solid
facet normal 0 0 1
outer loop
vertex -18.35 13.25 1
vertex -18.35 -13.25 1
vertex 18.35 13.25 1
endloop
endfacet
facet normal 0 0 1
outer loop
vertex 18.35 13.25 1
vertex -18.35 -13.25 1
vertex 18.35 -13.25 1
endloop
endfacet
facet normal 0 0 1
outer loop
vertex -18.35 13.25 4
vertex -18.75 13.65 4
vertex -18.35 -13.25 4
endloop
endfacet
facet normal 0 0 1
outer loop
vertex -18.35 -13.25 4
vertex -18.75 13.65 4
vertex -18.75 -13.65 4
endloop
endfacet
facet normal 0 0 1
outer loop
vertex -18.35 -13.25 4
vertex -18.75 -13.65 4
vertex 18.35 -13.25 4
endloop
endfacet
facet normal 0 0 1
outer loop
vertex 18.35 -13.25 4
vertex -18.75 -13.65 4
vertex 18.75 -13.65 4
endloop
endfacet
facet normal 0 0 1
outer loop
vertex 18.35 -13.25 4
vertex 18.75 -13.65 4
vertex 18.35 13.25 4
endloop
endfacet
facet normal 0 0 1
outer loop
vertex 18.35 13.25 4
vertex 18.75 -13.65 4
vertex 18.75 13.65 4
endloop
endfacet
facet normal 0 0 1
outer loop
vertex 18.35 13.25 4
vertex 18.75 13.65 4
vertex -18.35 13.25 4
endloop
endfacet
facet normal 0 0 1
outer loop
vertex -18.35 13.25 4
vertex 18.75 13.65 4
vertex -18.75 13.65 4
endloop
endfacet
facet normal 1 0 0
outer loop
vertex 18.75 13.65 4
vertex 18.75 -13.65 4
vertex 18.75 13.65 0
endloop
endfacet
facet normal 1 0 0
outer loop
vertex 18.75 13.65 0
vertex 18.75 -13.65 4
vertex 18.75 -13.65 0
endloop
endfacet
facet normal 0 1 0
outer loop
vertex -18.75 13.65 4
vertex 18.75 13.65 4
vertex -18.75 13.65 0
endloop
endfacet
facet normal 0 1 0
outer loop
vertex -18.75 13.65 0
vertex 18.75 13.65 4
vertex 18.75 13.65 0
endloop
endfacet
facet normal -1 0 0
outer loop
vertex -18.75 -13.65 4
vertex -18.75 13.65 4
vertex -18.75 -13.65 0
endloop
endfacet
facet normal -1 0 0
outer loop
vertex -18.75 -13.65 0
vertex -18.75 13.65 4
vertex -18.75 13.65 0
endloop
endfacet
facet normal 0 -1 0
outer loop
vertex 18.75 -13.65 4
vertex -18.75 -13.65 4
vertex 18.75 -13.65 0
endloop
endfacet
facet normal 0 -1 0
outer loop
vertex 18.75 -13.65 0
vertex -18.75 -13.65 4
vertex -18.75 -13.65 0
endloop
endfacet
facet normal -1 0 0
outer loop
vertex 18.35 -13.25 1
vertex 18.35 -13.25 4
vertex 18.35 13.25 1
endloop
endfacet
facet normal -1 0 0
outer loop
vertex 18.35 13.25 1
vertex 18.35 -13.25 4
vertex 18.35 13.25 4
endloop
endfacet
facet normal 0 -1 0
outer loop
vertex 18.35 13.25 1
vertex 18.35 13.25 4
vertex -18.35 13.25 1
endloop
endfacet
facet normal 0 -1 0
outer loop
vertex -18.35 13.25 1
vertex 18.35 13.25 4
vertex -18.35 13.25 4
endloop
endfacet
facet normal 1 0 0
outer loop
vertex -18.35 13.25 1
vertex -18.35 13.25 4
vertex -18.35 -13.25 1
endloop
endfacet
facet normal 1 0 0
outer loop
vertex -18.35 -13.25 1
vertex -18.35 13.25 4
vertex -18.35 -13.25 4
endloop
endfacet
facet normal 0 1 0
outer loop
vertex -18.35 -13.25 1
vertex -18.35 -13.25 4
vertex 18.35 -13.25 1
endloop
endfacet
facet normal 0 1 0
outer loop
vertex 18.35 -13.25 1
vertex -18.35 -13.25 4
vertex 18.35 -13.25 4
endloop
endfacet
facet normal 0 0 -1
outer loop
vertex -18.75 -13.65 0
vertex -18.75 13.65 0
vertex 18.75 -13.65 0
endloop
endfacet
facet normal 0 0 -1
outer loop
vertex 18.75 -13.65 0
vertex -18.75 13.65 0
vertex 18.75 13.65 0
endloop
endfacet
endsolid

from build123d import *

# Parameters (mm, degrees)
ESQUISSE1_W        = 36.7
ESQUISSE1_H        = 26.5
BOSS_EXTRU_2_DEPTH = 1
ESQUISSE1_2_W      = 37.5
ESQUISSE1_2_H      = 27.3
ESQUISSE1_2_W_2    = 36.7
ESQUISSE1_2_H_2    = 26.5
EXTRU_MINCE1_DEPTH = 4


with BuildPart() as part:
    # Esquisse1 → Boss.-Extru.2 (new body)
    with BuildSketch(Plane.XY):
        Rectangle(ESQUISSE1_W, ESQUISSE1_H)
    extrude(amount=BOSS_EXTRU_2_DEPTH)

    # Esquisse1<2> → Extru.-Mince1 (add)
    with BuildSketch(Plane.XY):
        Rectangle(ESQUISSE1_2_W, ESQUISSE1_2_H)
        Rectangle(ESQUISSE1_2_W_2, ESQUISSE1_2_H_2, mode=Mode.SUBTRACT)
    extrude(amount=EXTRU_MINCE1_DEPTH)


solid = part.part
